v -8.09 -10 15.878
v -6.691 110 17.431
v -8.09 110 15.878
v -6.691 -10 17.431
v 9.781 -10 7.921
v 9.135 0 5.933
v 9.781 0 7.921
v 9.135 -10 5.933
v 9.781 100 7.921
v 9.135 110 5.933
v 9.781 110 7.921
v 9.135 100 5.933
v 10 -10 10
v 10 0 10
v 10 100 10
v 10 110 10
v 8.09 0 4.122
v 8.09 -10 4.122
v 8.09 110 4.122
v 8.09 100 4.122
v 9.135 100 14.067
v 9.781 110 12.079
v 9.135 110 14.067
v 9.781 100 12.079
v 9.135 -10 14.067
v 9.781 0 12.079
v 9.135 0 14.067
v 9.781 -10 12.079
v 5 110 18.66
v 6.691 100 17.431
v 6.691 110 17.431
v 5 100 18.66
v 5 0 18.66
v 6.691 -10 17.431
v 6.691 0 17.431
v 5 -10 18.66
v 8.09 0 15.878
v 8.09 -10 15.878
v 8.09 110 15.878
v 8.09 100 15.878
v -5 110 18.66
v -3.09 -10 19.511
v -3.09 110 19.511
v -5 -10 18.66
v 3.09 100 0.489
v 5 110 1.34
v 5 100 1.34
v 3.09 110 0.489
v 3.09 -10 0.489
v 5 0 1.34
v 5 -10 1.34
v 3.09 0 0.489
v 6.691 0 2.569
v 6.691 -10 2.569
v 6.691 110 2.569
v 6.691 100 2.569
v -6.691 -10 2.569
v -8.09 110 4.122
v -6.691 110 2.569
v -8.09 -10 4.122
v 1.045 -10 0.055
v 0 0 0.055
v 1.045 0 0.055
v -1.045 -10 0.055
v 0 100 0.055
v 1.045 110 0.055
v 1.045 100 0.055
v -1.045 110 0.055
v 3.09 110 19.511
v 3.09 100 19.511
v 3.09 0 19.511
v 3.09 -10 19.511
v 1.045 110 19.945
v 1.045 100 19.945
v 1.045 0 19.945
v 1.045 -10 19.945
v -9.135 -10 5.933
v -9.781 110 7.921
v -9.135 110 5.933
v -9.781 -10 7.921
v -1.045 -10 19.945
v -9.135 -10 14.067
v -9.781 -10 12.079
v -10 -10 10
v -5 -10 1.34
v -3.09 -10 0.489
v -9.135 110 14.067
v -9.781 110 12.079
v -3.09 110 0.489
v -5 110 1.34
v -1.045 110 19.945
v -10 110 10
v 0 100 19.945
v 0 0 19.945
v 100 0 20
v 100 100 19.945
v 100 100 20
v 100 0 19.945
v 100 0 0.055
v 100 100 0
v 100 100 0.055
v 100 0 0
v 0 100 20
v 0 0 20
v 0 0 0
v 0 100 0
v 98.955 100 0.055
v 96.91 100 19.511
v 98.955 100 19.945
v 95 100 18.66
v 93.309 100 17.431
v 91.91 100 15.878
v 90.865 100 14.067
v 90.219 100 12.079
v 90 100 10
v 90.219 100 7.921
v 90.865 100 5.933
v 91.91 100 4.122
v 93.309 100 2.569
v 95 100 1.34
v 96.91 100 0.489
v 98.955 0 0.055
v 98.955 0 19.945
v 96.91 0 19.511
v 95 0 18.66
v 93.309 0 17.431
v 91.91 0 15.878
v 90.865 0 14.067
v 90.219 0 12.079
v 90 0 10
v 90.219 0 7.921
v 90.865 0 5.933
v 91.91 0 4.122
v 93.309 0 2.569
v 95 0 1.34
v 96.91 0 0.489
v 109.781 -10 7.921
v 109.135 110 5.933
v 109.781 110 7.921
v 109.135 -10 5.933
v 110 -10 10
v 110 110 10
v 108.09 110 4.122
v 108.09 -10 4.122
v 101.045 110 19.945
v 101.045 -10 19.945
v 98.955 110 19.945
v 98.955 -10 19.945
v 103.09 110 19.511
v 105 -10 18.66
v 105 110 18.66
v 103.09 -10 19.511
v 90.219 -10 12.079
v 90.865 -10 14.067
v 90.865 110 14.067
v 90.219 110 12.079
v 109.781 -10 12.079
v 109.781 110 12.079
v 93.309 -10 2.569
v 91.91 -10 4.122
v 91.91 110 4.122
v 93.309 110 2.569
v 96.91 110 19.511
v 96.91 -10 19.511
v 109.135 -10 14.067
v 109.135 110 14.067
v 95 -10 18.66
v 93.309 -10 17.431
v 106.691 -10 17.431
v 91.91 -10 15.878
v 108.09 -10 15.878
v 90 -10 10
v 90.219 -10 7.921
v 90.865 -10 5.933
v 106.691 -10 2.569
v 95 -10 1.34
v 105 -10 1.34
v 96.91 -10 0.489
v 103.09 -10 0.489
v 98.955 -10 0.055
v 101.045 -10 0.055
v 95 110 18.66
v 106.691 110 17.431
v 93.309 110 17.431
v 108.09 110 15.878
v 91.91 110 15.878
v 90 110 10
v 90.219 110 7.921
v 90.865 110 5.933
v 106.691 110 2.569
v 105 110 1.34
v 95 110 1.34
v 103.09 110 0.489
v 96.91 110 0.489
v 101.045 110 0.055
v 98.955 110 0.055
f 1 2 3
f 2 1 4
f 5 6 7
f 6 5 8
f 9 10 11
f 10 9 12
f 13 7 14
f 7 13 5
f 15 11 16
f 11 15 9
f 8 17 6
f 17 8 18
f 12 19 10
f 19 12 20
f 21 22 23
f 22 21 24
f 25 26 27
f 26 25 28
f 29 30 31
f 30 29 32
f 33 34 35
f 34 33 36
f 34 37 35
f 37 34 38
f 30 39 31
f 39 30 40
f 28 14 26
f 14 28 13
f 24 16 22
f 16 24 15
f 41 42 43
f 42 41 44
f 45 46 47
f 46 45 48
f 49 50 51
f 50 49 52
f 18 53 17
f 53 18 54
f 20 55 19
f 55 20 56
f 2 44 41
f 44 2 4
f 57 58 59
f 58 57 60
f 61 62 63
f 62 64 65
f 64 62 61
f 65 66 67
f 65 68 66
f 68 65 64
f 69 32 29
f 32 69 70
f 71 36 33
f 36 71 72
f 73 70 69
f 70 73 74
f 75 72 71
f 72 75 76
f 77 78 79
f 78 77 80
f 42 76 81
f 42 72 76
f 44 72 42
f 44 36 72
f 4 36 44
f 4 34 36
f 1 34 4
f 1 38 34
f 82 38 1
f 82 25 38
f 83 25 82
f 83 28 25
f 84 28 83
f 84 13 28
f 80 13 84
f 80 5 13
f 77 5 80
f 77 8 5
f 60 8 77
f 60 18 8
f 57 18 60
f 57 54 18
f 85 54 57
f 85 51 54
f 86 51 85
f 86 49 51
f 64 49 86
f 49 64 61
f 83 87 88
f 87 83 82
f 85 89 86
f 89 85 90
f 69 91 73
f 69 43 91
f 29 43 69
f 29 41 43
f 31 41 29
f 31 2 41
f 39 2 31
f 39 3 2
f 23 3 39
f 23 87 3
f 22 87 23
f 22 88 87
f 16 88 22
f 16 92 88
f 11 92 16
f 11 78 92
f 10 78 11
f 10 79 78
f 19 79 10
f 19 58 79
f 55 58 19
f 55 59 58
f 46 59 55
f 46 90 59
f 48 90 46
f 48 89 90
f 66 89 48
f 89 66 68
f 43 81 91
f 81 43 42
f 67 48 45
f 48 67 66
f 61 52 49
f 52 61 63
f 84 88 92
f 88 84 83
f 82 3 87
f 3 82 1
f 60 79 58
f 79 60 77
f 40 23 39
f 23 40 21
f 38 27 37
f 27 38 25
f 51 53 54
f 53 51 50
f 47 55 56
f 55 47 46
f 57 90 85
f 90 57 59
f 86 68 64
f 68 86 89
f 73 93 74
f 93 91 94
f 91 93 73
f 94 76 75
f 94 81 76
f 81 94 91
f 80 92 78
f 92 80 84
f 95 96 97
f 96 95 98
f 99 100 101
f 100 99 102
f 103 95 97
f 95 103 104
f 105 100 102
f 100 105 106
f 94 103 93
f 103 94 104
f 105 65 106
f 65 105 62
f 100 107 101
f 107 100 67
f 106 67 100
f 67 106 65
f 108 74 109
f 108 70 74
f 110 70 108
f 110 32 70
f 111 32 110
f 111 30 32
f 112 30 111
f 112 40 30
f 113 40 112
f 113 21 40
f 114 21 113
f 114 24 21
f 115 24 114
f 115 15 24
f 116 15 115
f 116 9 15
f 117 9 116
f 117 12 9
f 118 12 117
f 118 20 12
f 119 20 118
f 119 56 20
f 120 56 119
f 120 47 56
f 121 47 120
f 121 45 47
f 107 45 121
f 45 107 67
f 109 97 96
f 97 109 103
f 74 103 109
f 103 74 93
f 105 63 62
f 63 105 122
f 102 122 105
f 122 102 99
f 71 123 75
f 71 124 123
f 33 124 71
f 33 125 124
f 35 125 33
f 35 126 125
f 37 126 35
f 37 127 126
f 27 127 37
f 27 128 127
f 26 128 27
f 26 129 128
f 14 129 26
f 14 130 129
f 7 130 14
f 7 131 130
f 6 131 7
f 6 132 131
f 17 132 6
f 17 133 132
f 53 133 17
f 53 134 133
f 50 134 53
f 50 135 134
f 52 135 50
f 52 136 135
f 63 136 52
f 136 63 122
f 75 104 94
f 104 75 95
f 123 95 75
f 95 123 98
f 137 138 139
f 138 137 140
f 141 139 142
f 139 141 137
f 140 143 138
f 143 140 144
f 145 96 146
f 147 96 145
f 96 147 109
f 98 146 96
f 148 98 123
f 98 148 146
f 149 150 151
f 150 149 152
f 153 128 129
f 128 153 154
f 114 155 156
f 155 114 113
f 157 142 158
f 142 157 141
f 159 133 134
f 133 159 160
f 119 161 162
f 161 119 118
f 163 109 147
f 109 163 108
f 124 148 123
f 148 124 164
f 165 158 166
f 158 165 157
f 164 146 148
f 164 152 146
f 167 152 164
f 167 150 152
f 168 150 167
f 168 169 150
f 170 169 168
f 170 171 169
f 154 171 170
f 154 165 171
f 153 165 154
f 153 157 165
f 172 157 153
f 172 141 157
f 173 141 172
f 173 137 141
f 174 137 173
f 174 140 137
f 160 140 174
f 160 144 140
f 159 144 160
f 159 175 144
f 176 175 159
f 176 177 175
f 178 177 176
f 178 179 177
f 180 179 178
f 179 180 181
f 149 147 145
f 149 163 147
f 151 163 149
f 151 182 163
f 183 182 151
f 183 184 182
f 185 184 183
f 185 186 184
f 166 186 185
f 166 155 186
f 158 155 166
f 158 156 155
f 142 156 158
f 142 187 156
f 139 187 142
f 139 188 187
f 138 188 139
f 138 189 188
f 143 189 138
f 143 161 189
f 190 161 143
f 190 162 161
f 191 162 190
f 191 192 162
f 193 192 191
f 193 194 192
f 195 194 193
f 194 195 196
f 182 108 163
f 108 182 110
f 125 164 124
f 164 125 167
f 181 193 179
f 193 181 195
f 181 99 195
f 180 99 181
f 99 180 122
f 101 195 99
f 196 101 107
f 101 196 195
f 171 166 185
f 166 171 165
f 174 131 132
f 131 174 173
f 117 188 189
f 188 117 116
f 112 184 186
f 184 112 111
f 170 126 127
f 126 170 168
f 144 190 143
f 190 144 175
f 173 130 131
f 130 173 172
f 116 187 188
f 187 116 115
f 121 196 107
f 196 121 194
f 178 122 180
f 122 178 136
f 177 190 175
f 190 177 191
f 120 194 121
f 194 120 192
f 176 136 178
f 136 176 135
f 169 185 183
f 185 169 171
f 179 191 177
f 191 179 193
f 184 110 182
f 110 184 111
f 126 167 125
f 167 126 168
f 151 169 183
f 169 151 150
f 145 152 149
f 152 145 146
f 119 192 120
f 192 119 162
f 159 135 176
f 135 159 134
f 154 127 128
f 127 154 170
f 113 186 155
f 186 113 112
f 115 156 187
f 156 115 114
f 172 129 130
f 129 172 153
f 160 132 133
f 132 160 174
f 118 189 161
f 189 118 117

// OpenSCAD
diameter = 20;
depth = 100;
width = 100;

translate([0, -10, diameter / 2]) rotate([-90, 0, 0]) cylinder(d=diameter, depth + 20);
cube([width, depth, diameter]);
translate([width, -10, diameter / 2]) rotate([-90, 0, 0]) cylinder(d=diameter, depth + 20);
